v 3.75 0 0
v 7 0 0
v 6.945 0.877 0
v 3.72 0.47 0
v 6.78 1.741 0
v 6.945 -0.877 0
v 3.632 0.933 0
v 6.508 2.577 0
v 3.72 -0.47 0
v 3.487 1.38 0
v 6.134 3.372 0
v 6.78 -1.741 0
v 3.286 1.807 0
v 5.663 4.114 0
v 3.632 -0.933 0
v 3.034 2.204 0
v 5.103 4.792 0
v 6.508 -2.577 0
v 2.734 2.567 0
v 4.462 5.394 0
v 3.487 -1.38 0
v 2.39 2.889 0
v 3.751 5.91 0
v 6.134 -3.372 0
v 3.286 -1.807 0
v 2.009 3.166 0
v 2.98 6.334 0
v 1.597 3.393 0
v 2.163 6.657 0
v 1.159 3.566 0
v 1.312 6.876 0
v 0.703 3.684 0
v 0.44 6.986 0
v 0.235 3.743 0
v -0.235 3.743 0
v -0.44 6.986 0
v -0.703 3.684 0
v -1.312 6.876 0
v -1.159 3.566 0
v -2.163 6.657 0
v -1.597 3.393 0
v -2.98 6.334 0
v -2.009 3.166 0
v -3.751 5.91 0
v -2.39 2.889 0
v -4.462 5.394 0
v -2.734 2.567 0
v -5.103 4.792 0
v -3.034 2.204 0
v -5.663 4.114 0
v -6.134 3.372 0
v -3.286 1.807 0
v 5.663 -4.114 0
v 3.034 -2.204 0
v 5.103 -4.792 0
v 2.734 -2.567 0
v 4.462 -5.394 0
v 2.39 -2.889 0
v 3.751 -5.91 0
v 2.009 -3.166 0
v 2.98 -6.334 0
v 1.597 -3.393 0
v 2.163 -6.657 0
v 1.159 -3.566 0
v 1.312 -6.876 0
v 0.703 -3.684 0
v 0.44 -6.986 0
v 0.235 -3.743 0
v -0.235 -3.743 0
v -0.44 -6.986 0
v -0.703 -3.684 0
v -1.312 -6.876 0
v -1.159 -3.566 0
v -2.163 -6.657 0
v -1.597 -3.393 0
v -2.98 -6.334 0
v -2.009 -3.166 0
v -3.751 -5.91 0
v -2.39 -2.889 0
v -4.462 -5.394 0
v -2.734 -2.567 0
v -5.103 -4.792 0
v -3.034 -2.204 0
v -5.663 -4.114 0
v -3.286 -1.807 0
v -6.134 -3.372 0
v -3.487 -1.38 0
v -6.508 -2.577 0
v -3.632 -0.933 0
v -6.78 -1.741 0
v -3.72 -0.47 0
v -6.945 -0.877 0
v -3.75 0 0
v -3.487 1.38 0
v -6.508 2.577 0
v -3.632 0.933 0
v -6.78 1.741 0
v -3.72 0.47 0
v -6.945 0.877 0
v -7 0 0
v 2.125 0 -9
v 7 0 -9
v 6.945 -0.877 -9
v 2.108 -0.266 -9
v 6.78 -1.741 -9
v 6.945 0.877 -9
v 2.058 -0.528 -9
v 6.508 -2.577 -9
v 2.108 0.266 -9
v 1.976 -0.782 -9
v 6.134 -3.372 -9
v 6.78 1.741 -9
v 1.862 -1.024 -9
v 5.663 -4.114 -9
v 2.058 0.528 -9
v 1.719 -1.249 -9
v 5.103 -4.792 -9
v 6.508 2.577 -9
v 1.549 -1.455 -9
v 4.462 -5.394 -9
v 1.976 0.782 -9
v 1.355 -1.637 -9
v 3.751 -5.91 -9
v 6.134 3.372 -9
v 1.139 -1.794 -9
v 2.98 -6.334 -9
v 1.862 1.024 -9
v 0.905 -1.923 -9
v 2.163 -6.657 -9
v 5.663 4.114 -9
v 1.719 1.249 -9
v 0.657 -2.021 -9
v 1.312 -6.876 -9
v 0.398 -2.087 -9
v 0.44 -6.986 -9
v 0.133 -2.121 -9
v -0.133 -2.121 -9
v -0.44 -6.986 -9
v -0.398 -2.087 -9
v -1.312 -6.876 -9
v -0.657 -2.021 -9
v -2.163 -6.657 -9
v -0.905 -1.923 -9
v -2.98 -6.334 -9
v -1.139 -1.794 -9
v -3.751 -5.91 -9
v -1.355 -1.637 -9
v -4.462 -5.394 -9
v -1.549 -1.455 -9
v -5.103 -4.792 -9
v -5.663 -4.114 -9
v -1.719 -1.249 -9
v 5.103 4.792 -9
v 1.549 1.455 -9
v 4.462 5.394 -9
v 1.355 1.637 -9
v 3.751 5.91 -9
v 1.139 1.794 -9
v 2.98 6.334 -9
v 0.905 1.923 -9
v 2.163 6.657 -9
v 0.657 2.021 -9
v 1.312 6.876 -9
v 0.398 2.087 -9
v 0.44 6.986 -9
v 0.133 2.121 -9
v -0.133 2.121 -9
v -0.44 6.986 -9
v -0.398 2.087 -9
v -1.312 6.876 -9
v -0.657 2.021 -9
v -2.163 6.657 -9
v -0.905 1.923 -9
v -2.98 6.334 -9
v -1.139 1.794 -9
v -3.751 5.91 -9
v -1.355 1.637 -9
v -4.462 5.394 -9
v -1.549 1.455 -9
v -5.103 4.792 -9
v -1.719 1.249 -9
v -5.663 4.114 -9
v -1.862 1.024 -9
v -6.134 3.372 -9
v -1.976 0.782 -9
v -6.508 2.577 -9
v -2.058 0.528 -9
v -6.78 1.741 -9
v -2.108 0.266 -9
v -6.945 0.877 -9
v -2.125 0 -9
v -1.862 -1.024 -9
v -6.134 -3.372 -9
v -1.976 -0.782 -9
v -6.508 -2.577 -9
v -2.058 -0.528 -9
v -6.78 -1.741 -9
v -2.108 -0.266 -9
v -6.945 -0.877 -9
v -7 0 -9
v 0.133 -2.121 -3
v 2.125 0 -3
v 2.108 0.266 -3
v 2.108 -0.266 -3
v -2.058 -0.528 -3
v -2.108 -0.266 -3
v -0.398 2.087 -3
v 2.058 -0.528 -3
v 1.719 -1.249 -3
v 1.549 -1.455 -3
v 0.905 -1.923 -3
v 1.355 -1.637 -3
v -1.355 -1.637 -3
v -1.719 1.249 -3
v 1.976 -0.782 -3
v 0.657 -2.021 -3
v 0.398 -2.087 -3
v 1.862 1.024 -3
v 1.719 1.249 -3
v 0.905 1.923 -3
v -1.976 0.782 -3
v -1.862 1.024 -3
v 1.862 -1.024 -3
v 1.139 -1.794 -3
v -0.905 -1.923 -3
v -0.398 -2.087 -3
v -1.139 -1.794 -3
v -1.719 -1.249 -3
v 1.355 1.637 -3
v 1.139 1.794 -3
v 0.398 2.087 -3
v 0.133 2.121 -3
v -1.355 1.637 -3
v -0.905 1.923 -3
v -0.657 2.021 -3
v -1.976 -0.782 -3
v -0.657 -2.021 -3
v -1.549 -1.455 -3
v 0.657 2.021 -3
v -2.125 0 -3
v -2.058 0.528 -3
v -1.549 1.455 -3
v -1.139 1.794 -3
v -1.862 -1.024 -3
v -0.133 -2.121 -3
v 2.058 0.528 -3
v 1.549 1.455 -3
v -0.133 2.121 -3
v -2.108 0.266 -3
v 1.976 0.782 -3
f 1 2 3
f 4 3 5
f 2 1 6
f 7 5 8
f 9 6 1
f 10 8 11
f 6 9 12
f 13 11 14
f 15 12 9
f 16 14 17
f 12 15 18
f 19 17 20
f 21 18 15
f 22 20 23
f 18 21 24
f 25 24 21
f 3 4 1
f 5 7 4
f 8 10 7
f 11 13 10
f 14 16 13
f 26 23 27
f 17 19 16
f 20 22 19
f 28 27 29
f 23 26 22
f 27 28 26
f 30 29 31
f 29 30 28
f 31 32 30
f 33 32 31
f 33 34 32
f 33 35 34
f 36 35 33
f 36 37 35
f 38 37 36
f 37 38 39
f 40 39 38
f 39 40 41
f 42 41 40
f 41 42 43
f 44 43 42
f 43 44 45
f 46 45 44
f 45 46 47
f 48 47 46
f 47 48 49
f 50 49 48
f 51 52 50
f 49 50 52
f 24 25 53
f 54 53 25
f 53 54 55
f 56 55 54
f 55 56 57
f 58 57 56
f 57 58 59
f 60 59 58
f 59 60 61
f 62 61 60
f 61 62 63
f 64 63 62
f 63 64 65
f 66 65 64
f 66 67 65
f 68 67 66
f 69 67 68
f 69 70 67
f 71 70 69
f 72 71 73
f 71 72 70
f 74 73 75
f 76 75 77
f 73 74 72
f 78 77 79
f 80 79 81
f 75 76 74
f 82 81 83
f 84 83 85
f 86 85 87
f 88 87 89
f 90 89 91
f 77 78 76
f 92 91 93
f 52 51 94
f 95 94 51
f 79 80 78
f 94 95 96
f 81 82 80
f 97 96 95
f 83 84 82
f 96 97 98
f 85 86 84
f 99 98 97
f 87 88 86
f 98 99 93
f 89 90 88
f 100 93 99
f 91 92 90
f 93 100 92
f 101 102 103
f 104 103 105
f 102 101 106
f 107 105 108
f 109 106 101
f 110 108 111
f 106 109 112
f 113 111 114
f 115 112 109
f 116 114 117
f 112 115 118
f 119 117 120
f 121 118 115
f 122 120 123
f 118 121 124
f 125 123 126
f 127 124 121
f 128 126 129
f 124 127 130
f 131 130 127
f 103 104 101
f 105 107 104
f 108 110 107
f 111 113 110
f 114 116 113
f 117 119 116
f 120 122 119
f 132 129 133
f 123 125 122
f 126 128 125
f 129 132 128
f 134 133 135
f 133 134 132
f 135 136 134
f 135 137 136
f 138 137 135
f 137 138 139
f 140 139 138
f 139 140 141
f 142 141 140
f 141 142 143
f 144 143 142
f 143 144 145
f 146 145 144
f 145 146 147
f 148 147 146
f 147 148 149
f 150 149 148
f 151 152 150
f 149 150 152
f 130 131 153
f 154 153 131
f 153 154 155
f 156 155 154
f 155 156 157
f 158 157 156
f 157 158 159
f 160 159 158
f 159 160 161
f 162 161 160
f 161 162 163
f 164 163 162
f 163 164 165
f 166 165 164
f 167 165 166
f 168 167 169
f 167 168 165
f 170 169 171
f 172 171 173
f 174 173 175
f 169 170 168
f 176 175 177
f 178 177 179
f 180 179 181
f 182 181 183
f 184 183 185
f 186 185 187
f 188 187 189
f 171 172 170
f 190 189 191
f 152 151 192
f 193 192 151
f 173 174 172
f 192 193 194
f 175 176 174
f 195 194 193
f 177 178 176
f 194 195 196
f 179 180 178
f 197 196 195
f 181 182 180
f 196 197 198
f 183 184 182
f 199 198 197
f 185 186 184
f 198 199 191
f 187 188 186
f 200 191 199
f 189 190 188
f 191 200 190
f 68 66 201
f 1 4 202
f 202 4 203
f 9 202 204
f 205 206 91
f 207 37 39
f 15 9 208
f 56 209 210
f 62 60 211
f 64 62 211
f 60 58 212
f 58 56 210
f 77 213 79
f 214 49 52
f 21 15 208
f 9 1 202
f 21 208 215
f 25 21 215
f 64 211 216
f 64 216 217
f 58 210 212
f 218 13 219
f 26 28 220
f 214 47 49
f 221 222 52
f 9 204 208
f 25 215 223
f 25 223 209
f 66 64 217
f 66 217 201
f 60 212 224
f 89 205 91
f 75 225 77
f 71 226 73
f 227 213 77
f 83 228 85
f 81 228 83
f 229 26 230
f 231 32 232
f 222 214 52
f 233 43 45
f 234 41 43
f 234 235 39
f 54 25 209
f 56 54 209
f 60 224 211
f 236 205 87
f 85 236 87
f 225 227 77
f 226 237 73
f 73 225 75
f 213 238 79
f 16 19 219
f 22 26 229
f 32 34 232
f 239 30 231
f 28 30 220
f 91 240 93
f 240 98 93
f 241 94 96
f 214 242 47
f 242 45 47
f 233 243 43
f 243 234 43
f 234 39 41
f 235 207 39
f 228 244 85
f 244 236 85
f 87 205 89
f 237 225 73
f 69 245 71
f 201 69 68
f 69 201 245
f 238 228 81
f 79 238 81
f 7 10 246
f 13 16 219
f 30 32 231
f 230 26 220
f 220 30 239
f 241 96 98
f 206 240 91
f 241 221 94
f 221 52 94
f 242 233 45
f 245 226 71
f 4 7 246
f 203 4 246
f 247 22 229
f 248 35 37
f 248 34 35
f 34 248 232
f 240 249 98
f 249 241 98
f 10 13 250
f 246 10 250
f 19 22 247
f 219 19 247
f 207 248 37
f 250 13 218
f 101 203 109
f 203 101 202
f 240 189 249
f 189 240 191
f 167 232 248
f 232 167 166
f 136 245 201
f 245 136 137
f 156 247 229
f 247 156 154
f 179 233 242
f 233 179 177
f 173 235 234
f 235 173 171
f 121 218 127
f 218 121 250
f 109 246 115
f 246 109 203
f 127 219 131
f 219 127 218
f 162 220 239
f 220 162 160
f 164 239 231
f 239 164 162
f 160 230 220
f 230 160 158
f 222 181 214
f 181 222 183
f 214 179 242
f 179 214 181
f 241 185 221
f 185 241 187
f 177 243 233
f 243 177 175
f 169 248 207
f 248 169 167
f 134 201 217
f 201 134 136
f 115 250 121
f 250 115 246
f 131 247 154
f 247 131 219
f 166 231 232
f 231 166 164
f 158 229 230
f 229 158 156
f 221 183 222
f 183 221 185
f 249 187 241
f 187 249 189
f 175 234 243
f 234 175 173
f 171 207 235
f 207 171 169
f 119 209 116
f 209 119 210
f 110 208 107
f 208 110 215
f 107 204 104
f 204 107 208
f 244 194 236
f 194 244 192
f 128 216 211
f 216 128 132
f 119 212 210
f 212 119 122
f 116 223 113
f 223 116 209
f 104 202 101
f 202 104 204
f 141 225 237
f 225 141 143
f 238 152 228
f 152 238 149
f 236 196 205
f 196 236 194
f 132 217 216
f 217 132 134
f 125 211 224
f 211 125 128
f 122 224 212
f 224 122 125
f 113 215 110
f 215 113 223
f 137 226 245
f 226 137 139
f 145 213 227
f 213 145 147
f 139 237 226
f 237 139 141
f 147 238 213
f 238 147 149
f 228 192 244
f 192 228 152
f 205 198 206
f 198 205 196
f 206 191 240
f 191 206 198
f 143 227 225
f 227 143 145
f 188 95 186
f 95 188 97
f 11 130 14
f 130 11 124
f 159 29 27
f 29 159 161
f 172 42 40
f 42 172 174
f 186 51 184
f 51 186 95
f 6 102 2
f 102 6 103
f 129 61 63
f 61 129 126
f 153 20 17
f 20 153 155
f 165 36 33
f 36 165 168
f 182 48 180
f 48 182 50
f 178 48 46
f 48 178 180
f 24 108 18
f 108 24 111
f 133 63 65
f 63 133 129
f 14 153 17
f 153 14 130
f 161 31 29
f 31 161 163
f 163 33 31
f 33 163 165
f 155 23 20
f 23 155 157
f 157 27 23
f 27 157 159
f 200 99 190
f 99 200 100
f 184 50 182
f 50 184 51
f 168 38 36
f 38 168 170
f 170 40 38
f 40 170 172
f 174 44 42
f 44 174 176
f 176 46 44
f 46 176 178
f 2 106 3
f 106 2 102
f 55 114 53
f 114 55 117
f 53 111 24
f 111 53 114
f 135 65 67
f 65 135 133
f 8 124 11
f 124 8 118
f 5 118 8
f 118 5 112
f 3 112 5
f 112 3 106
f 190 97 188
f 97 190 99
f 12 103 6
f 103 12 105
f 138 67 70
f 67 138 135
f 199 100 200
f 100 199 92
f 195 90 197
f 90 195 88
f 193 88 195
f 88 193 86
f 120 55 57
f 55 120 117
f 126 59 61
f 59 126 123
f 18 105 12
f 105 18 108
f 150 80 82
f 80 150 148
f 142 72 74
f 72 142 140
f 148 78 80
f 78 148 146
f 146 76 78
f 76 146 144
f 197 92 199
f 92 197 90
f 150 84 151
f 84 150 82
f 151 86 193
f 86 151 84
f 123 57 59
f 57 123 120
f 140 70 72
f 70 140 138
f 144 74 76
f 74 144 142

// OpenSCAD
$fn = 50;


difference() {
	union() {
		translate(v = [0, 0, -9.0000000000]) {
			cylinder(h = 9, r = 7.0000000000);
		}
		cylinder(h = 0, r = 10.0000000000);
	}
	union() {
		translate(v = [0, 0, 0]) {
			rotate(a = [0, 0, 0]) {
				difference() {
					union() {
						#translate(v = [0, 0, -9.0000000000]) {
							cylinder(h = 9, r = 2.0000000000);
						}
						#translate(v = [0, 0, -3]) {
							cylinder(h = 3, r = 7.0000000000, r1 = 2.1250000000, r2 = 3.7500000000);
						}
						#translate(v = [0, 0, -9.0000000000]) {
							cylinder(h = 9, r = 2.1250000000);
						}
						#translate(v = [0, 0, -9.0000000000]) {
							cylinder(h = 9, r = 2.0000000000);
						}
					}
					union();
				}
			}
		}
	}
}
